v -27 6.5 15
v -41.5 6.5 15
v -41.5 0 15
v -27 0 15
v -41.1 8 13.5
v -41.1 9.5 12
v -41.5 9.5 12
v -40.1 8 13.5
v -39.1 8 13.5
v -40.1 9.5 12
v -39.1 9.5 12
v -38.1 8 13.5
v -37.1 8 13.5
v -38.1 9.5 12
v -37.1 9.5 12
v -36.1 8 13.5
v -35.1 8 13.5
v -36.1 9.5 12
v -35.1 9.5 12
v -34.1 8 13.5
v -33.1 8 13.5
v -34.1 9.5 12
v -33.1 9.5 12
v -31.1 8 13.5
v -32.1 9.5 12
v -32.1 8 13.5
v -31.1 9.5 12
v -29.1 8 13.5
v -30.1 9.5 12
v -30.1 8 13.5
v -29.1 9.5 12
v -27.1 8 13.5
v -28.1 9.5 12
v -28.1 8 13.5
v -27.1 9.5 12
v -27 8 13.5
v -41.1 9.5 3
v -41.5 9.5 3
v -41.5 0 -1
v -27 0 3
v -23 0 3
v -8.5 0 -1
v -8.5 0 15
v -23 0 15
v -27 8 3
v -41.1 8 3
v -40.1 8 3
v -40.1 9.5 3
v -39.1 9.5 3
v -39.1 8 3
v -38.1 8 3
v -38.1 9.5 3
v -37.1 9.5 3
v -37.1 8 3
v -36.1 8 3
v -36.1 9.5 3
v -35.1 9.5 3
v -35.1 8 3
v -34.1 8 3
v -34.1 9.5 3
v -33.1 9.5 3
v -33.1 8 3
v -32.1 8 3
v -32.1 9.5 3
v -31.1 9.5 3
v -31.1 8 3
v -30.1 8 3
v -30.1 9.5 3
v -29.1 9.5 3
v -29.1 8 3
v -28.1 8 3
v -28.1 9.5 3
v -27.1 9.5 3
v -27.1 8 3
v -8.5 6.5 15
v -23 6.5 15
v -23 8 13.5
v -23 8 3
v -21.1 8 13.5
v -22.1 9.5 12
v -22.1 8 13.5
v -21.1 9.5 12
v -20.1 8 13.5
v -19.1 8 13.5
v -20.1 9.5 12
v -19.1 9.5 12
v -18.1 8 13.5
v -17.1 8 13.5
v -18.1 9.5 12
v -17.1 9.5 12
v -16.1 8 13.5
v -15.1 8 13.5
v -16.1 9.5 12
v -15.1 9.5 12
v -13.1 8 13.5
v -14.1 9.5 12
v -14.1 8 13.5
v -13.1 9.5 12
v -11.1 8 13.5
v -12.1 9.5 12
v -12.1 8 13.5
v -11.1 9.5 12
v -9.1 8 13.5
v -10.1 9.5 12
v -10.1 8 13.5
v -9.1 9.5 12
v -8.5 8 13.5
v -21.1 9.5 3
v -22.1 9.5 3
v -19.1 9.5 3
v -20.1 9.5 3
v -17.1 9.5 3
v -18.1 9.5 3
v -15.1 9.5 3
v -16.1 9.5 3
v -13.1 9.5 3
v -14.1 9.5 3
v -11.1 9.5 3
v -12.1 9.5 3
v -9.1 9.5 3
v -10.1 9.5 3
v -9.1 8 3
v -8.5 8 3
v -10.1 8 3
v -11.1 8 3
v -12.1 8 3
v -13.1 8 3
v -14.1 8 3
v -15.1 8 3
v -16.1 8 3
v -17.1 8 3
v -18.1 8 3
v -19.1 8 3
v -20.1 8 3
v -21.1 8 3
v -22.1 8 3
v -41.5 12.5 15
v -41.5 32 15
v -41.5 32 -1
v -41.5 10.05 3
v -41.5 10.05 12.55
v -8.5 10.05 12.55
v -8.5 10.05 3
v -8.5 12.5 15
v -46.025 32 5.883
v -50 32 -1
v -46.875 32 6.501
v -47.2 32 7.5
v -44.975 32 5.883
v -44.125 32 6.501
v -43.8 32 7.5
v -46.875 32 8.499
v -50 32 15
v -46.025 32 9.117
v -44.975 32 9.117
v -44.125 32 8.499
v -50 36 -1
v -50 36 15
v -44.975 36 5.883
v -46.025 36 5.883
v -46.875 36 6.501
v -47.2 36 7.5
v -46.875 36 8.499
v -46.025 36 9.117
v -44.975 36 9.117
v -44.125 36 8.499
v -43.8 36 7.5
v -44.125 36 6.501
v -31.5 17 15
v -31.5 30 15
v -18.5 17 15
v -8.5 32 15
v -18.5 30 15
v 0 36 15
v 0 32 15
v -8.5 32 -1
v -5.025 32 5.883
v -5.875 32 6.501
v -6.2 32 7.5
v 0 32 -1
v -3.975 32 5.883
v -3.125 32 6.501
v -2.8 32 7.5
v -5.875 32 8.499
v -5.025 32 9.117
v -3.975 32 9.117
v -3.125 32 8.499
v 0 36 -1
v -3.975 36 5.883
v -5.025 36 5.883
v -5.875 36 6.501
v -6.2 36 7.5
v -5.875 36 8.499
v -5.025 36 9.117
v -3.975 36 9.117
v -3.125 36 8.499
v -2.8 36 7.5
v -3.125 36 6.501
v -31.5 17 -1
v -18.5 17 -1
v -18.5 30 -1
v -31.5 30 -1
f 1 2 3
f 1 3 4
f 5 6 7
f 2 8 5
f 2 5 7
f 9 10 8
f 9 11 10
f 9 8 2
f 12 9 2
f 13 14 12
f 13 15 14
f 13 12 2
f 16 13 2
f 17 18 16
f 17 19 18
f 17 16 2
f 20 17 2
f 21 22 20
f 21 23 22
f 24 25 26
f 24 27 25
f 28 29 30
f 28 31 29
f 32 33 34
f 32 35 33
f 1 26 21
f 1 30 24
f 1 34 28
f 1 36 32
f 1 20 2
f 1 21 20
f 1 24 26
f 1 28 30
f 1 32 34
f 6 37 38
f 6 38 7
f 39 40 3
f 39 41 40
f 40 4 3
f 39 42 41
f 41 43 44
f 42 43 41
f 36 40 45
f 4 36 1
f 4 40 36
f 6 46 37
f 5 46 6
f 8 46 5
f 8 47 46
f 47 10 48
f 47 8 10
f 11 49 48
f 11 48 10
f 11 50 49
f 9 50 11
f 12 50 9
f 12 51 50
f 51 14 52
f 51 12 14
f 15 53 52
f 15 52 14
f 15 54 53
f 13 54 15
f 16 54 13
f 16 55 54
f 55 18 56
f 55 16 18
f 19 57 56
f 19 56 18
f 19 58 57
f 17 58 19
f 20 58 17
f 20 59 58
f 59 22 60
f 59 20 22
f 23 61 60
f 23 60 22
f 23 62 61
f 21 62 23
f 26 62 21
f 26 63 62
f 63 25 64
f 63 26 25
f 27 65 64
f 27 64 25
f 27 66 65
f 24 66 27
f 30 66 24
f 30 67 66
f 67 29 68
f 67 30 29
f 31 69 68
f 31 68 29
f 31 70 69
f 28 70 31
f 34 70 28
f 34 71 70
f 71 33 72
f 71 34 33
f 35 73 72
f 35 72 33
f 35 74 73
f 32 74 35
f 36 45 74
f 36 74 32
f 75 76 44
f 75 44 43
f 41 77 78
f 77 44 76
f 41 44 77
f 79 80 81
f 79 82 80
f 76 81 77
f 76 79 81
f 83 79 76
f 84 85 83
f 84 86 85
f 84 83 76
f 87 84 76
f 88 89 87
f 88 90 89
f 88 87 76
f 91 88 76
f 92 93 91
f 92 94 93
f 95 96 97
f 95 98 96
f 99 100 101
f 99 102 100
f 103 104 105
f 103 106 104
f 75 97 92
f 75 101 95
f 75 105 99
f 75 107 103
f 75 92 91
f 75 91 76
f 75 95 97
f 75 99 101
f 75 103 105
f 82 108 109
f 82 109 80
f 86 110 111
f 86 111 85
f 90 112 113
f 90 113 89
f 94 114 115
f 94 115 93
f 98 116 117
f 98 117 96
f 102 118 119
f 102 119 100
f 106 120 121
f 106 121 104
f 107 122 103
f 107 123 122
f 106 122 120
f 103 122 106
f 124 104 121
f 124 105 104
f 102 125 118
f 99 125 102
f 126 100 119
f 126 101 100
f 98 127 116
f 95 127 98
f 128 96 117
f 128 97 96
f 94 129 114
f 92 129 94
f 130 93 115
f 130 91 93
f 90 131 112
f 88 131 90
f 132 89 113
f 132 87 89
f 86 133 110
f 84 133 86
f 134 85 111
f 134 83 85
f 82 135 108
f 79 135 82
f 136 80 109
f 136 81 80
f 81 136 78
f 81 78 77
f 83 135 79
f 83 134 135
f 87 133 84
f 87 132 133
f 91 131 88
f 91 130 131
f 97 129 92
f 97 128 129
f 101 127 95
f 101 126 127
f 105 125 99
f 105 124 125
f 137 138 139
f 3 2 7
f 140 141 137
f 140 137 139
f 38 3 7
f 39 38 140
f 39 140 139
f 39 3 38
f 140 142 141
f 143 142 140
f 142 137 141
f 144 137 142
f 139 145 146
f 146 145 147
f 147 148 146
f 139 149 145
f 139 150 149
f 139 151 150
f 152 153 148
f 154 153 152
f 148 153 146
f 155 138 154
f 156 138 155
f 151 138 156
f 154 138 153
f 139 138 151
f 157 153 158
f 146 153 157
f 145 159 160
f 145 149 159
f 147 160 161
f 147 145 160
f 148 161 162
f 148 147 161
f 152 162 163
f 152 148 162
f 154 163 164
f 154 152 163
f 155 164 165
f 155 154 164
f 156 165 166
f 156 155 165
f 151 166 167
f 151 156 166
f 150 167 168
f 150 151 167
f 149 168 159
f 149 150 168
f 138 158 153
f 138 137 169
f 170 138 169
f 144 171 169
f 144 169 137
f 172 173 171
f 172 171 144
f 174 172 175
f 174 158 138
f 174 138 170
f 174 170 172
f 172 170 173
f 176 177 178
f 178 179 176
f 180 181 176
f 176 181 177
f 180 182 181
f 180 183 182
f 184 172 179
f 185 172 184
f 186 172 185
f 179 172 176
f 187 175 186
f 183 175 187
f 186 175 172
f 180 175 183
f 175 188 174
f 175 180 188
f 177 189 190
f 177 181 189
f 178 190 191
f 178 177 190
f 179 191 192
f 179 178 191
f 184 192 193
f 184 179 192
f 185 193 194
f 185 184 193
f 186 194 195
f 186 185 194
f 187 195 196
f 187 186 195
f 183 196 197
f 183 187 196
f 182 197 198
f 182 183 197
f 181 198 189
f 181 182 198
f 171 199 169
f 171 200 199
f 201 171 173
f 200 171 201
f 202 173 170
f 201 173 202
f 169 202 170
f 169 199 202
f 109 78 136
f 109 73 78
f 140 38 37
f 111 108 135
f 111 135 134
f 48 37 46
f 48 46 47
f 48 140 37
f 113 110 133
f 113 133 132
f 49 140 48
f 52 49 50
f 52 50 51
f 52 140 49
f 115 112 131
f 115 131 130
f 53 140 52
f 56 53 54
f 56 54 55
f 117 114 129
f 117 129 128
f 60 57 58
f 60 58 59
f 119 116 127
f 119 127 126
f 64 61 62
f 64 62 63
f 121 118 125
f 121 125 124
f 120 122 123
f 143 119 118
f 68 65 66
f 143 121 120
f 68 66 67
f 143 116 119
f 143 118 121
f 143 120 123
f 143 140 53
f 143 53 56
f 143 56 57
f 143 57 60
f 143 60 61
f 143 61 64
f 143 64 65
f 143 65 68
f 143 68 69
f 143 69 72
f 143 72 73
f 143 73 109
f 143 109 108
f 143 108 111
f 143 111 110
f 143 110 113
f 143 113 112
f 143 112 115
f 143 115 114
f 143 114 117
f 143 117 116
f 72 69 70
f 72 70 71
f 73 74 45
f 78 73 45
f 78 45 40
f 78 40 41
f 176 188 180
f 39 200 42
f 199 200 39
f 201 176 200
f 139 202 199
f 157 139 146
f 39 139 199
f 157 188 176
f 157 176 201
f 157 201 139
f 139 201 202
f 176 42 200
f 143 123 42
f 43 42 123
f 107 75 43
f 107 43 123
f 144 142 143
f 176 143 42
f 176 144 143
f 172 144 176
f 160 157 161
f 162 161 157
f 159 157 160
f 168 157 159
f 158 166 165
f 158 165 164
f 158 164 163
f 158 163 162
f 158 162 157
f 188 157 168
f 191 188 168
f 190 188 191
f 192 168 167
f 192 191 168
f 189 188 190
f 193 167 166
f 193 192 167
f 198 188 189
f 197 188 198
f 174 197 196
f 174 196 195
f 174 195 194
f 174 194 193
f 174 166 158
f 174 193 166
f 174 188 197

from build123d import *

# Parameters (mm, degrees)
PRISM001_DEPTH          = 50
PRISM_DEPTH             = 50
CUBE004_W               = 67
CUBE004_H               = 15
CUBE004_DEPTH           = 15
CUBE004_PLACEMENT_ANGLE = 45
CUBE006_W               = 1
CUBE006_H               = 1.7
CUBE006_DEPTH           = 15
CUBE007_W               = 1
CUBE007_H               = 1.7
CUBE007_DEPTH           = 15
CUBE008_W               = 1
CUBE008_H               = 1.7
CUBE008_DEPTH           = 15
CUBE009_W               = 1
CUBE009_H               = 1.7
CUBE009_DEPTH           = 15
CUBE010_W               = 1
CUBE010_H               = 1.7
CUBE010_DEPTH           = 15
CUBE011_W               = 1
CUBE011_H               = 1.7
CUBE011_DEPTH           = 15
CUBE012_W               = 1
CUBE012_H               = 1.7
CUBE012_DEPTH           = 15
CUBE013_W               = 1
CUBE013_H               = 1.7
CUBE013_DEPTH           = 15
CUBE014_W               = 1
CUBE014_H               = 1.7
CUBE014_DEPTH           = 15
CUBE015_W               = 1
CUBE015_H               = 1.7
CUBE015_DEPTH           = 15
CUBE016_W               = 1
CUBE016_H               = 1.7
CUBE016_DEPTH           = 15
CUBE017_W               = 1
CUBE017_H               = 1.7
CUBE017_DEPTH           = 15
CUBE018_W               = 1
CUBE018_H               = 1.7
CUBE018_DEPTH           = 15
CUBE019_W               = 1
CUBE019_H               = 1.7
CUBE019_DEPTH           = 15
CUBE020_W               = 1
CUBE020_H               = 1.7
CUBE020_DEPTH           = 15
CUBE021_W               = 1
CUBE021_H               = 1.7
CUBE021_DEPTH           = 15
CUBE022_W               = 1
CUBE022_H               = 1.7
CUBE022_DEPTH           = 15
CUBE023_W               = 1
CUBE023_H               = 1.7
CUBE023_DEPTH           = 15
CUBE024_W               = 1
CUBE024_H               = 1.7
CUBE024_DEPTH           = 15
CUBE025_W               = 1
CUBE025_H               = 1.7
CUBE025_DEPTH           = 15
CUBE026_W               = 1
CUBE026_H               = 1.7
CUBE026_DEPTH           = 15
CUBE027_W               = 1
CUBE027_H               = 1.7
CUBE027_DEPTH           = 15
CUBE028_W               = 1
CUBE028_H               = 1.7
CUBE028_DEPTH           = 15
CUBE005_W               = 1
CUBE005_H               = 1.7
CUBE005_DEPTH           = 15
CUBE029_W               = 4
CUBE029_H               = 11
CUBE029_DEPTH           = 15
CUBE030_W               = 13
CUBE030_H               = 13
CUBE030_DEPTH           = 20
CUBE003_W               = 67
CUBE003_H               = 0.55
CUBE003_DEPTH           = 15
CUBE001_W               = 33
CUBE001_H               = 25
CUBE001_DEPTH           = 16
CUBE002_W               = 50
CUBE002_H               = 4
CUBE002_DEPTH           = 16
CUBE_W                  = 33
CUBE_H                  = 15
CUBE_DEPTH              = 16


with BuildPart() as prism001:
    # prism001 → prism001 (new body)
    with BuildSketch(Plane(origin=(-45.5, 0.1, 7.5), x_dir=(1, 0, 0), z_dir=(0, 1, 0))):
        Polygon((1.7, 0), (1.375329, 0.999235), (0.525329, 1.616796), (-0.525329, 1.616796), (-1.375329, 0.999235), (-1.7, 0), (-1.375329, -0.999235), (-0.525329, -1.616796), (0.525329, -1.616796), (1.375329, -0.999235), align=None)
    extrude(amount=PRISM001_DEPTH)


with BuildPart() as group003:
    # prism → prism (new body)
    with BuildSketch(Plane(origin=(-4.5, 0.1, 7.5), x_dir=(1, 0, 0), z_dir=(0, 1, 0))):
        Polygon((1.7, 0), (1.375329, 0.999235), (0.525329, 1.616796), (-0.525329, 1.616796), (-1.375329, 0.999235), (-1.7, 0), (-1.375329, -0.999235), (-0.525329, -1.616796), (0.525329, -1.616796), (1.375329, -0.999235), align=None)
    extrude(amount=PRISM_DEPTH)

    # Group003: union prism001
    add(prism001.part)


with BuildPart() as cube004:
    # cube004 → cube004 (new body)
    with BuildSketch(Plane.XY):
        with Locations((33.5, 7.5)):
            Rectangle(CUBE004_W, CUBE004_H)
    extrude(amount=CUBE004_DEPTH)


with BuildPart() as cube004_1:
    # cube004 placement: moved
    add(cube004.part.moved(Location((-66, 9.5, 12))).rotate(Axis((-66, 9.5, 12), (1, 0, 0)), CUBE004_PLACEMENT_ANGLE))


with BuildPart() as cube006:
    # cube006 → cube006 (new body)
    with BuildSketch(Plane(origin=(-3.1, 8, 3), x_dir=(1, 0, 0), z_dir=(0, 0, 1))):
        with Locations((0.5, 0.85)):
            Rectangle(CUBE006_W, CUBE006_H)
    extrude(amount=CUBE006_DEPTH)


with BuildPart() as cube007:
    # cube007 → cube007 (new body)
    with BuildSketch(Plane(origin=(-5.1, 8, 3), x_dir=(1, 0, 0), z_dir=(0, 0, 1))):
        with Locations((0.5, 0.85)):
            Rectangle(CUBE007_W, CUBE007_H)
    extrude(amount=CUBE007_DEPTH)


with BuildPart() as cube008:
    # cube008 → cube008 (new body)
    with BuildSketch(Plane(origin=(-7.1, 8, 3), x_dir=(1, 0, 0), z_dir=(0, 0, 1))):
        with Locations((0.5, 0.85)):
            Rectangle(CUBE008_W, CUBE008_H)
    extrude(amount=CUBE008_DEPTH)


with BuildPart() as cube009:
    # cube009 → cube009 (new body)
    with BuildSketch(Plane(origin=(-9.1, 8, 3), x_dir=(1, 0, 0), z_dir=(0, 0, 1))):
        with Locations((0.5, 0.85)):
            Rectangle(CUBE009_W, CUBE009_H)
    extrude(amount=CUBE009_DEPTH)


with BuildPart() as cube010:
    # cube010 → cube010 (new body)
    with BuildSketch(Plane(origin=(-11.1, 8, 3), x_dir=(1, 0, 0), z_dir=(0, 0, 1))):
        with Locations((0.5, 0.85)):
            Rectangle(CUBE010_W, CUBE010_H)
    extrude(amount=CUBE010_DEPTH)


with BuildPart() as cube011:
    # cube011 → cube011 (new body)
    with BuildSketch(Plane(origin=(-13.1, 8, 3), x_dir=(1, 0, 0), z_dir=(0, 0, 1))):
        with Locations((0.5, 0.85)):
            Rectangle(CUBE011_W, CUBE011_H)
    extrude(amount=CUBE011_DEPTH)


with BuildPart() as cube012:
    # cube012 → cube012 (new body)
    with BuildSketch(Plane(origin=(-15.1, 8, 3), x_dir=(1, 0, 0), z_dir=(0, 0, 1))):
        with Locations((0.5, 0.85)):
            Rectangle(CUBE012_W, CUBE012_H)
    extrude(amount=CUBE012_DEPTH)


with BuildPart() as cube013:
    # cube013 → cube013 (new body)
    with BuildSketch(Plane(origin=(-17.1, 8, 3), x_dir=(1, 0, 0), z_dir=(0, 0, 1))):
        with Locations((0.5, 0.85)):
            Rectangle(CUBE013_W, CUBE013_H)
    extrude(amount=CUBE013_DEPTH)


with BuildPart() as cube014:
    # cube014 → cube014 (new body)
    with BuildSketch(Plane(origin=(-19.1, 8, 3), x_dir=(1, 0, 0), z_dir=(0, 0, 1))):
        with Locations((0.5, 0.85)):
            Rectangle(CUBE014_W, CUBE014_H)
    extrude(amount=CUBE014_DEPTH)


with BuildPart() as cube015:
    # cube015 → cube015 (new body)
    with BuildSketch(Plane(origin=(-21.1, 8, 3), x_dir=(1, 0, 0), z_dir=(0, 0, 1))):
        with Locations((0.5, 0.85)):
            Rectangle(CUBE015_W, CUBE015_H)
    extrude(amount=CUBE015_DEPTH)


with BuildPart() as cube016:
    # cube016 → cube016 (new body)
    with BuildSketch(Plane(origin=(-23.1, 8, 3), x_dir=(1, 0, 0), z_dir=(0, 0, 1))):
        with Locations((0.5, 0.85)):
            Rectangle(CUBE016_W, CUBE016_H)
    extrude(amount=CUBE016_DEPTH)


with BuildPart() as cube017:
    # cube017 → cube017 (new body)
    with BuildSketch(Plane(origin=(-25.1, 8, 3), x_dir=(1, 0, 0), z_dir=(0, 0, 1))):
        with Locations((0.5, 0.85)):
            Rectangle(CUBE017_W, CUBE017_H)
    extrude(amount=CUBE017_DEPTH)


with BuildPart() as cube018:
    # cube018 → cube018 (new body)
    with BuildSketch(Plane(origin=(-27.1, 8, 3), x_dir=(1, 0, 0), z_dir=(0, 0, 1))):
        with Locations((0.5, 0.85)):
            Rectangle(CUBE018_W, CUBE018_H)
    extrude(amount=CUBE018_DEPTH)


with BuildPart() as cube019:
    # cube019 → cube019 (new body)
    with BuildSketch(Plane(origin=(-29.1, 8, 3), x_dir=(1, 0, 0), z_dir=(0, 0, 1))):
        with Locations((0.5, 0.85)):
            Rectangle(CUBE019_W, CUBE019_H)
    extrude(amount=CUBE019_DEPTH)


with BuildPart() as cube020:
    # cube020 → cube020 (new body)
    with BuildSketch(Plane(origin=(-31.1, 8, 3), x_dir=(1, 0, 0), z_dir=(0, 0, 1))):
        with Locations((0.5, 0.85)):
            Rectangle(CUBE020_W, CUBE020_H)
    extrude(amount=CUBE020_DEPTH)


with BuildPart() as cube021:
    # cube021 → cube021 (new body)
    with BuildSketch(Plane(origin=(-33.1, 8, 3), x_dir=(1, 0, 0), z_dir=(0, 0, 1))):
        with Locations((0.5, 0.85)):
            Rectangle(CUBE021_W, CUBE021_H)
    extrude(amount=CUBE021_DEPTH)


with BuildPart() as cube022:
    # cube022 → cube022 (new body)
    with BuildSketch(Plane(origin=(-35.1, 8, 3), x_dir=(1, 0, 0), z_dir=(0, 0, 1))):
        with Locations((0.5, 0.85)):
            Rectangle(CUBE022_W, CUBE022_H)
    extrude(amount=CUBE022_DEPTH)


with BuildPart() as cube023:
    # cube023 → cube023 (new body)
    with BuildSketch(Plane(origin=(-37.1, 8, 3), x_dir=(1, 0, 0), z_dir=(0, 0, 1))):
        with Locations((0.5, 0.85)):
            Rectangle(CUBE023_W, CUBE023_H)
    extrude(amount=CUBE023_DEPTH)


with BuildPart() as cube024:
    # cube024 → cube024 (new body)
    with BuildSketch(Plane(origin=(-39.1, 8, 3), x_dir=(1, 0, 0), z_dir=(0, 0, 1))):
        with Locations((0.5, 0.85)):
            Rectangle(CUBE024_W, CUBE024_H)
    extrude(amount=CUBE024_DEPTH)


with BuildPart() as cube025:
    # cube025 → cube025 (new body)
    with BuildSketch(Plane(origin=(-41.1, 8, 3), x_dir=(1, 0, 0), z_dir=(0, 0, 1))):
        with Locations((0.5, 0.85)):
            Rectangle(CUBE025_W, CUBE025_H)
    extrude(amount=CUBE025_DEPTH)


with BuildPart() as cube026:
    # cube026 → cube026 (new body)
    with BuildSketch(Plane(origin=(-43.1, 8, 3), x_dir=(1, 0, 0), z_dir=(0, 0, 1))):
        with Locations((0.5, 0.85)):
            Rectangle(CUBE026_W, CUBE026_H)
    extrude(amount=CUBE026_DEPTH)


with BuildPart() as cube027:
    # cube027 → cube027 (new body)
    with BuildSketch(Plane(origin=(-45.1, 8, 3), x_dir=(1, 0, 0), z_dir=(0, 0, 1))):
        with Locations((0.5, 0.85)):
            Rectangle(CUBE027_W, CUBE027_H)
    extrude(amount=CUBE027_DEPTH)


with BuildPart() as cube028:
    # cube028 → cube028 (new body)
    with BuildSketch(Plane(origin=(-47.1, 8, 3), x_dir=(1, 0, 0), z_dir=(0, 0, 1))):
        with Locations((0.5, 0.85)):
            Rectangle(CUBE028_W, CUBE028_H)
    extrude(amount=CUBE028_DEPTH)


with BuildPart() as group001:
    # cube005 → cube005 (new body)
    with BuildSketch(Plane(origin=(-1.1, 8, 3), x_dir=(1, 0, 0), z_dir=(0, 0, 1))):
        with Locations((0.5, 0.85)):
            Rectangle(CUBE005_W, CUBE005_H)
    extrude(amount=CUBE005_DEPTH)

    # Group001: union cube006, cube007, cube008, cube009, cube010, cube011, cube012, cube013, cube014, cube015, cube016, cube017, cube018, cube019, cube020, cube021, cube022, cube023, cube024, cube025, cube026, cube027, cube028
    add(cube006.part)
    add(cube007.part)
    add(cube008.part)
    add(cube009.part)
    add(cube010.part)
    add(cube011.part)
    add(cube012.part)
    add(cube013.part)
    add(cube014.part)
    add(cube015.part)
    add(cube016.part)
    add(cube017.part)
    add(cube018.part)
    add(cube019.part)
    add(cube020.part)
    add(cube021.part)
    add(cube022.part)
    add(cube023.part)
    add(cube024.part)
    add(cube025.part)
    add(cube026.part)
    add(cube027.part)
    add(cube028.part)


with BuildPart() as cube029:
    # cube029 → cube029 (new body)
    with BuildSketch(Plane(origin=(-27, -1, 3), x_dir=(1, 0, 0), z_dir=(0, 0, 1))):
        with Locations((2, 5.5)):
            Rectangle(CUBE029_W, CUBE029_H)
    extrude(amount=CUBE029_DEPTH)


with BuildPart() as cube030:
    # cube030 → cube030 (new body)
    with BuildSketch(Plane(origin=(-31.5, 17, -2), x_dir=(1, 0, 0), z_dir=(0, 0, 1))):
        with Locations((6.5, 6.5)):
            Rectangle(CUBE030_W, CUBE030_H)
    extrude(amount=CUBE030_DEPTH)


with BuildPart() as union:
    # cube003 → cube003 (new body)
    with BuildSketch(Plane(origin=(-66, 9.5, 3), x_dir=(1, 0, 0), z_dir=(0, 0, 1))):
        with Locations((33.5, 0.275)):
            Rectangle(CUBE003_W, CUBE003_H)
    extrude(amount=CUBE003_DEPTH)

    # Group002: union cube004, Group001, cube029, cube030
    add(cube004_1.part)
    add(group001.part)
    add(cube029.part)
    add(cube030.part)

    # union: union Group003
    add(group003.part)


with BuildPart() as cube001:
    # cube001 → cube001 (new body)
    with BuildSketch(Plane(origin=(-41.5, 11, -1), x_dir=(1, 0, 0), z_dir=(0, 0, 1))):
        with Locations((16.5, 12.5)):
            Rectangle(CUBE001_W, CUBE001_H)
    extrude(amount=CUBE001_DEPTH)


with BuildPart() as cube002:
    # cube002 → cube002 (new body)
    with BuildSketch(Plane(origin=(-50, 32, -1), x_dir=(1, 0, 0), z_dir=(0, 0, 1))):
        with Locations((25, 2)):
            Rectangle(CUBE002_W, CUBE002_H)
    extrude(amount=CUBE002_DEPTH)


with BuildPart() as difference:
    # cube → cube (new body)
    with BuildSketch(Plane(origin=(-41.5, 0, -1), x_dir=(1, 0, 0), z_dir=(0, 0, 1))):
        with Locations((16.5, 7.5)):
            Rectangle(CUBE_W, CUBE_H)
    extrude(amount=CUBE_DEPTH)

    # Group: union cube001, cube002
    add(cube001.part)
    add(cube002.part)

    # difference: cut union
    add(union.part, mode=Mode.SUBTRACT)


solid = difference.part
